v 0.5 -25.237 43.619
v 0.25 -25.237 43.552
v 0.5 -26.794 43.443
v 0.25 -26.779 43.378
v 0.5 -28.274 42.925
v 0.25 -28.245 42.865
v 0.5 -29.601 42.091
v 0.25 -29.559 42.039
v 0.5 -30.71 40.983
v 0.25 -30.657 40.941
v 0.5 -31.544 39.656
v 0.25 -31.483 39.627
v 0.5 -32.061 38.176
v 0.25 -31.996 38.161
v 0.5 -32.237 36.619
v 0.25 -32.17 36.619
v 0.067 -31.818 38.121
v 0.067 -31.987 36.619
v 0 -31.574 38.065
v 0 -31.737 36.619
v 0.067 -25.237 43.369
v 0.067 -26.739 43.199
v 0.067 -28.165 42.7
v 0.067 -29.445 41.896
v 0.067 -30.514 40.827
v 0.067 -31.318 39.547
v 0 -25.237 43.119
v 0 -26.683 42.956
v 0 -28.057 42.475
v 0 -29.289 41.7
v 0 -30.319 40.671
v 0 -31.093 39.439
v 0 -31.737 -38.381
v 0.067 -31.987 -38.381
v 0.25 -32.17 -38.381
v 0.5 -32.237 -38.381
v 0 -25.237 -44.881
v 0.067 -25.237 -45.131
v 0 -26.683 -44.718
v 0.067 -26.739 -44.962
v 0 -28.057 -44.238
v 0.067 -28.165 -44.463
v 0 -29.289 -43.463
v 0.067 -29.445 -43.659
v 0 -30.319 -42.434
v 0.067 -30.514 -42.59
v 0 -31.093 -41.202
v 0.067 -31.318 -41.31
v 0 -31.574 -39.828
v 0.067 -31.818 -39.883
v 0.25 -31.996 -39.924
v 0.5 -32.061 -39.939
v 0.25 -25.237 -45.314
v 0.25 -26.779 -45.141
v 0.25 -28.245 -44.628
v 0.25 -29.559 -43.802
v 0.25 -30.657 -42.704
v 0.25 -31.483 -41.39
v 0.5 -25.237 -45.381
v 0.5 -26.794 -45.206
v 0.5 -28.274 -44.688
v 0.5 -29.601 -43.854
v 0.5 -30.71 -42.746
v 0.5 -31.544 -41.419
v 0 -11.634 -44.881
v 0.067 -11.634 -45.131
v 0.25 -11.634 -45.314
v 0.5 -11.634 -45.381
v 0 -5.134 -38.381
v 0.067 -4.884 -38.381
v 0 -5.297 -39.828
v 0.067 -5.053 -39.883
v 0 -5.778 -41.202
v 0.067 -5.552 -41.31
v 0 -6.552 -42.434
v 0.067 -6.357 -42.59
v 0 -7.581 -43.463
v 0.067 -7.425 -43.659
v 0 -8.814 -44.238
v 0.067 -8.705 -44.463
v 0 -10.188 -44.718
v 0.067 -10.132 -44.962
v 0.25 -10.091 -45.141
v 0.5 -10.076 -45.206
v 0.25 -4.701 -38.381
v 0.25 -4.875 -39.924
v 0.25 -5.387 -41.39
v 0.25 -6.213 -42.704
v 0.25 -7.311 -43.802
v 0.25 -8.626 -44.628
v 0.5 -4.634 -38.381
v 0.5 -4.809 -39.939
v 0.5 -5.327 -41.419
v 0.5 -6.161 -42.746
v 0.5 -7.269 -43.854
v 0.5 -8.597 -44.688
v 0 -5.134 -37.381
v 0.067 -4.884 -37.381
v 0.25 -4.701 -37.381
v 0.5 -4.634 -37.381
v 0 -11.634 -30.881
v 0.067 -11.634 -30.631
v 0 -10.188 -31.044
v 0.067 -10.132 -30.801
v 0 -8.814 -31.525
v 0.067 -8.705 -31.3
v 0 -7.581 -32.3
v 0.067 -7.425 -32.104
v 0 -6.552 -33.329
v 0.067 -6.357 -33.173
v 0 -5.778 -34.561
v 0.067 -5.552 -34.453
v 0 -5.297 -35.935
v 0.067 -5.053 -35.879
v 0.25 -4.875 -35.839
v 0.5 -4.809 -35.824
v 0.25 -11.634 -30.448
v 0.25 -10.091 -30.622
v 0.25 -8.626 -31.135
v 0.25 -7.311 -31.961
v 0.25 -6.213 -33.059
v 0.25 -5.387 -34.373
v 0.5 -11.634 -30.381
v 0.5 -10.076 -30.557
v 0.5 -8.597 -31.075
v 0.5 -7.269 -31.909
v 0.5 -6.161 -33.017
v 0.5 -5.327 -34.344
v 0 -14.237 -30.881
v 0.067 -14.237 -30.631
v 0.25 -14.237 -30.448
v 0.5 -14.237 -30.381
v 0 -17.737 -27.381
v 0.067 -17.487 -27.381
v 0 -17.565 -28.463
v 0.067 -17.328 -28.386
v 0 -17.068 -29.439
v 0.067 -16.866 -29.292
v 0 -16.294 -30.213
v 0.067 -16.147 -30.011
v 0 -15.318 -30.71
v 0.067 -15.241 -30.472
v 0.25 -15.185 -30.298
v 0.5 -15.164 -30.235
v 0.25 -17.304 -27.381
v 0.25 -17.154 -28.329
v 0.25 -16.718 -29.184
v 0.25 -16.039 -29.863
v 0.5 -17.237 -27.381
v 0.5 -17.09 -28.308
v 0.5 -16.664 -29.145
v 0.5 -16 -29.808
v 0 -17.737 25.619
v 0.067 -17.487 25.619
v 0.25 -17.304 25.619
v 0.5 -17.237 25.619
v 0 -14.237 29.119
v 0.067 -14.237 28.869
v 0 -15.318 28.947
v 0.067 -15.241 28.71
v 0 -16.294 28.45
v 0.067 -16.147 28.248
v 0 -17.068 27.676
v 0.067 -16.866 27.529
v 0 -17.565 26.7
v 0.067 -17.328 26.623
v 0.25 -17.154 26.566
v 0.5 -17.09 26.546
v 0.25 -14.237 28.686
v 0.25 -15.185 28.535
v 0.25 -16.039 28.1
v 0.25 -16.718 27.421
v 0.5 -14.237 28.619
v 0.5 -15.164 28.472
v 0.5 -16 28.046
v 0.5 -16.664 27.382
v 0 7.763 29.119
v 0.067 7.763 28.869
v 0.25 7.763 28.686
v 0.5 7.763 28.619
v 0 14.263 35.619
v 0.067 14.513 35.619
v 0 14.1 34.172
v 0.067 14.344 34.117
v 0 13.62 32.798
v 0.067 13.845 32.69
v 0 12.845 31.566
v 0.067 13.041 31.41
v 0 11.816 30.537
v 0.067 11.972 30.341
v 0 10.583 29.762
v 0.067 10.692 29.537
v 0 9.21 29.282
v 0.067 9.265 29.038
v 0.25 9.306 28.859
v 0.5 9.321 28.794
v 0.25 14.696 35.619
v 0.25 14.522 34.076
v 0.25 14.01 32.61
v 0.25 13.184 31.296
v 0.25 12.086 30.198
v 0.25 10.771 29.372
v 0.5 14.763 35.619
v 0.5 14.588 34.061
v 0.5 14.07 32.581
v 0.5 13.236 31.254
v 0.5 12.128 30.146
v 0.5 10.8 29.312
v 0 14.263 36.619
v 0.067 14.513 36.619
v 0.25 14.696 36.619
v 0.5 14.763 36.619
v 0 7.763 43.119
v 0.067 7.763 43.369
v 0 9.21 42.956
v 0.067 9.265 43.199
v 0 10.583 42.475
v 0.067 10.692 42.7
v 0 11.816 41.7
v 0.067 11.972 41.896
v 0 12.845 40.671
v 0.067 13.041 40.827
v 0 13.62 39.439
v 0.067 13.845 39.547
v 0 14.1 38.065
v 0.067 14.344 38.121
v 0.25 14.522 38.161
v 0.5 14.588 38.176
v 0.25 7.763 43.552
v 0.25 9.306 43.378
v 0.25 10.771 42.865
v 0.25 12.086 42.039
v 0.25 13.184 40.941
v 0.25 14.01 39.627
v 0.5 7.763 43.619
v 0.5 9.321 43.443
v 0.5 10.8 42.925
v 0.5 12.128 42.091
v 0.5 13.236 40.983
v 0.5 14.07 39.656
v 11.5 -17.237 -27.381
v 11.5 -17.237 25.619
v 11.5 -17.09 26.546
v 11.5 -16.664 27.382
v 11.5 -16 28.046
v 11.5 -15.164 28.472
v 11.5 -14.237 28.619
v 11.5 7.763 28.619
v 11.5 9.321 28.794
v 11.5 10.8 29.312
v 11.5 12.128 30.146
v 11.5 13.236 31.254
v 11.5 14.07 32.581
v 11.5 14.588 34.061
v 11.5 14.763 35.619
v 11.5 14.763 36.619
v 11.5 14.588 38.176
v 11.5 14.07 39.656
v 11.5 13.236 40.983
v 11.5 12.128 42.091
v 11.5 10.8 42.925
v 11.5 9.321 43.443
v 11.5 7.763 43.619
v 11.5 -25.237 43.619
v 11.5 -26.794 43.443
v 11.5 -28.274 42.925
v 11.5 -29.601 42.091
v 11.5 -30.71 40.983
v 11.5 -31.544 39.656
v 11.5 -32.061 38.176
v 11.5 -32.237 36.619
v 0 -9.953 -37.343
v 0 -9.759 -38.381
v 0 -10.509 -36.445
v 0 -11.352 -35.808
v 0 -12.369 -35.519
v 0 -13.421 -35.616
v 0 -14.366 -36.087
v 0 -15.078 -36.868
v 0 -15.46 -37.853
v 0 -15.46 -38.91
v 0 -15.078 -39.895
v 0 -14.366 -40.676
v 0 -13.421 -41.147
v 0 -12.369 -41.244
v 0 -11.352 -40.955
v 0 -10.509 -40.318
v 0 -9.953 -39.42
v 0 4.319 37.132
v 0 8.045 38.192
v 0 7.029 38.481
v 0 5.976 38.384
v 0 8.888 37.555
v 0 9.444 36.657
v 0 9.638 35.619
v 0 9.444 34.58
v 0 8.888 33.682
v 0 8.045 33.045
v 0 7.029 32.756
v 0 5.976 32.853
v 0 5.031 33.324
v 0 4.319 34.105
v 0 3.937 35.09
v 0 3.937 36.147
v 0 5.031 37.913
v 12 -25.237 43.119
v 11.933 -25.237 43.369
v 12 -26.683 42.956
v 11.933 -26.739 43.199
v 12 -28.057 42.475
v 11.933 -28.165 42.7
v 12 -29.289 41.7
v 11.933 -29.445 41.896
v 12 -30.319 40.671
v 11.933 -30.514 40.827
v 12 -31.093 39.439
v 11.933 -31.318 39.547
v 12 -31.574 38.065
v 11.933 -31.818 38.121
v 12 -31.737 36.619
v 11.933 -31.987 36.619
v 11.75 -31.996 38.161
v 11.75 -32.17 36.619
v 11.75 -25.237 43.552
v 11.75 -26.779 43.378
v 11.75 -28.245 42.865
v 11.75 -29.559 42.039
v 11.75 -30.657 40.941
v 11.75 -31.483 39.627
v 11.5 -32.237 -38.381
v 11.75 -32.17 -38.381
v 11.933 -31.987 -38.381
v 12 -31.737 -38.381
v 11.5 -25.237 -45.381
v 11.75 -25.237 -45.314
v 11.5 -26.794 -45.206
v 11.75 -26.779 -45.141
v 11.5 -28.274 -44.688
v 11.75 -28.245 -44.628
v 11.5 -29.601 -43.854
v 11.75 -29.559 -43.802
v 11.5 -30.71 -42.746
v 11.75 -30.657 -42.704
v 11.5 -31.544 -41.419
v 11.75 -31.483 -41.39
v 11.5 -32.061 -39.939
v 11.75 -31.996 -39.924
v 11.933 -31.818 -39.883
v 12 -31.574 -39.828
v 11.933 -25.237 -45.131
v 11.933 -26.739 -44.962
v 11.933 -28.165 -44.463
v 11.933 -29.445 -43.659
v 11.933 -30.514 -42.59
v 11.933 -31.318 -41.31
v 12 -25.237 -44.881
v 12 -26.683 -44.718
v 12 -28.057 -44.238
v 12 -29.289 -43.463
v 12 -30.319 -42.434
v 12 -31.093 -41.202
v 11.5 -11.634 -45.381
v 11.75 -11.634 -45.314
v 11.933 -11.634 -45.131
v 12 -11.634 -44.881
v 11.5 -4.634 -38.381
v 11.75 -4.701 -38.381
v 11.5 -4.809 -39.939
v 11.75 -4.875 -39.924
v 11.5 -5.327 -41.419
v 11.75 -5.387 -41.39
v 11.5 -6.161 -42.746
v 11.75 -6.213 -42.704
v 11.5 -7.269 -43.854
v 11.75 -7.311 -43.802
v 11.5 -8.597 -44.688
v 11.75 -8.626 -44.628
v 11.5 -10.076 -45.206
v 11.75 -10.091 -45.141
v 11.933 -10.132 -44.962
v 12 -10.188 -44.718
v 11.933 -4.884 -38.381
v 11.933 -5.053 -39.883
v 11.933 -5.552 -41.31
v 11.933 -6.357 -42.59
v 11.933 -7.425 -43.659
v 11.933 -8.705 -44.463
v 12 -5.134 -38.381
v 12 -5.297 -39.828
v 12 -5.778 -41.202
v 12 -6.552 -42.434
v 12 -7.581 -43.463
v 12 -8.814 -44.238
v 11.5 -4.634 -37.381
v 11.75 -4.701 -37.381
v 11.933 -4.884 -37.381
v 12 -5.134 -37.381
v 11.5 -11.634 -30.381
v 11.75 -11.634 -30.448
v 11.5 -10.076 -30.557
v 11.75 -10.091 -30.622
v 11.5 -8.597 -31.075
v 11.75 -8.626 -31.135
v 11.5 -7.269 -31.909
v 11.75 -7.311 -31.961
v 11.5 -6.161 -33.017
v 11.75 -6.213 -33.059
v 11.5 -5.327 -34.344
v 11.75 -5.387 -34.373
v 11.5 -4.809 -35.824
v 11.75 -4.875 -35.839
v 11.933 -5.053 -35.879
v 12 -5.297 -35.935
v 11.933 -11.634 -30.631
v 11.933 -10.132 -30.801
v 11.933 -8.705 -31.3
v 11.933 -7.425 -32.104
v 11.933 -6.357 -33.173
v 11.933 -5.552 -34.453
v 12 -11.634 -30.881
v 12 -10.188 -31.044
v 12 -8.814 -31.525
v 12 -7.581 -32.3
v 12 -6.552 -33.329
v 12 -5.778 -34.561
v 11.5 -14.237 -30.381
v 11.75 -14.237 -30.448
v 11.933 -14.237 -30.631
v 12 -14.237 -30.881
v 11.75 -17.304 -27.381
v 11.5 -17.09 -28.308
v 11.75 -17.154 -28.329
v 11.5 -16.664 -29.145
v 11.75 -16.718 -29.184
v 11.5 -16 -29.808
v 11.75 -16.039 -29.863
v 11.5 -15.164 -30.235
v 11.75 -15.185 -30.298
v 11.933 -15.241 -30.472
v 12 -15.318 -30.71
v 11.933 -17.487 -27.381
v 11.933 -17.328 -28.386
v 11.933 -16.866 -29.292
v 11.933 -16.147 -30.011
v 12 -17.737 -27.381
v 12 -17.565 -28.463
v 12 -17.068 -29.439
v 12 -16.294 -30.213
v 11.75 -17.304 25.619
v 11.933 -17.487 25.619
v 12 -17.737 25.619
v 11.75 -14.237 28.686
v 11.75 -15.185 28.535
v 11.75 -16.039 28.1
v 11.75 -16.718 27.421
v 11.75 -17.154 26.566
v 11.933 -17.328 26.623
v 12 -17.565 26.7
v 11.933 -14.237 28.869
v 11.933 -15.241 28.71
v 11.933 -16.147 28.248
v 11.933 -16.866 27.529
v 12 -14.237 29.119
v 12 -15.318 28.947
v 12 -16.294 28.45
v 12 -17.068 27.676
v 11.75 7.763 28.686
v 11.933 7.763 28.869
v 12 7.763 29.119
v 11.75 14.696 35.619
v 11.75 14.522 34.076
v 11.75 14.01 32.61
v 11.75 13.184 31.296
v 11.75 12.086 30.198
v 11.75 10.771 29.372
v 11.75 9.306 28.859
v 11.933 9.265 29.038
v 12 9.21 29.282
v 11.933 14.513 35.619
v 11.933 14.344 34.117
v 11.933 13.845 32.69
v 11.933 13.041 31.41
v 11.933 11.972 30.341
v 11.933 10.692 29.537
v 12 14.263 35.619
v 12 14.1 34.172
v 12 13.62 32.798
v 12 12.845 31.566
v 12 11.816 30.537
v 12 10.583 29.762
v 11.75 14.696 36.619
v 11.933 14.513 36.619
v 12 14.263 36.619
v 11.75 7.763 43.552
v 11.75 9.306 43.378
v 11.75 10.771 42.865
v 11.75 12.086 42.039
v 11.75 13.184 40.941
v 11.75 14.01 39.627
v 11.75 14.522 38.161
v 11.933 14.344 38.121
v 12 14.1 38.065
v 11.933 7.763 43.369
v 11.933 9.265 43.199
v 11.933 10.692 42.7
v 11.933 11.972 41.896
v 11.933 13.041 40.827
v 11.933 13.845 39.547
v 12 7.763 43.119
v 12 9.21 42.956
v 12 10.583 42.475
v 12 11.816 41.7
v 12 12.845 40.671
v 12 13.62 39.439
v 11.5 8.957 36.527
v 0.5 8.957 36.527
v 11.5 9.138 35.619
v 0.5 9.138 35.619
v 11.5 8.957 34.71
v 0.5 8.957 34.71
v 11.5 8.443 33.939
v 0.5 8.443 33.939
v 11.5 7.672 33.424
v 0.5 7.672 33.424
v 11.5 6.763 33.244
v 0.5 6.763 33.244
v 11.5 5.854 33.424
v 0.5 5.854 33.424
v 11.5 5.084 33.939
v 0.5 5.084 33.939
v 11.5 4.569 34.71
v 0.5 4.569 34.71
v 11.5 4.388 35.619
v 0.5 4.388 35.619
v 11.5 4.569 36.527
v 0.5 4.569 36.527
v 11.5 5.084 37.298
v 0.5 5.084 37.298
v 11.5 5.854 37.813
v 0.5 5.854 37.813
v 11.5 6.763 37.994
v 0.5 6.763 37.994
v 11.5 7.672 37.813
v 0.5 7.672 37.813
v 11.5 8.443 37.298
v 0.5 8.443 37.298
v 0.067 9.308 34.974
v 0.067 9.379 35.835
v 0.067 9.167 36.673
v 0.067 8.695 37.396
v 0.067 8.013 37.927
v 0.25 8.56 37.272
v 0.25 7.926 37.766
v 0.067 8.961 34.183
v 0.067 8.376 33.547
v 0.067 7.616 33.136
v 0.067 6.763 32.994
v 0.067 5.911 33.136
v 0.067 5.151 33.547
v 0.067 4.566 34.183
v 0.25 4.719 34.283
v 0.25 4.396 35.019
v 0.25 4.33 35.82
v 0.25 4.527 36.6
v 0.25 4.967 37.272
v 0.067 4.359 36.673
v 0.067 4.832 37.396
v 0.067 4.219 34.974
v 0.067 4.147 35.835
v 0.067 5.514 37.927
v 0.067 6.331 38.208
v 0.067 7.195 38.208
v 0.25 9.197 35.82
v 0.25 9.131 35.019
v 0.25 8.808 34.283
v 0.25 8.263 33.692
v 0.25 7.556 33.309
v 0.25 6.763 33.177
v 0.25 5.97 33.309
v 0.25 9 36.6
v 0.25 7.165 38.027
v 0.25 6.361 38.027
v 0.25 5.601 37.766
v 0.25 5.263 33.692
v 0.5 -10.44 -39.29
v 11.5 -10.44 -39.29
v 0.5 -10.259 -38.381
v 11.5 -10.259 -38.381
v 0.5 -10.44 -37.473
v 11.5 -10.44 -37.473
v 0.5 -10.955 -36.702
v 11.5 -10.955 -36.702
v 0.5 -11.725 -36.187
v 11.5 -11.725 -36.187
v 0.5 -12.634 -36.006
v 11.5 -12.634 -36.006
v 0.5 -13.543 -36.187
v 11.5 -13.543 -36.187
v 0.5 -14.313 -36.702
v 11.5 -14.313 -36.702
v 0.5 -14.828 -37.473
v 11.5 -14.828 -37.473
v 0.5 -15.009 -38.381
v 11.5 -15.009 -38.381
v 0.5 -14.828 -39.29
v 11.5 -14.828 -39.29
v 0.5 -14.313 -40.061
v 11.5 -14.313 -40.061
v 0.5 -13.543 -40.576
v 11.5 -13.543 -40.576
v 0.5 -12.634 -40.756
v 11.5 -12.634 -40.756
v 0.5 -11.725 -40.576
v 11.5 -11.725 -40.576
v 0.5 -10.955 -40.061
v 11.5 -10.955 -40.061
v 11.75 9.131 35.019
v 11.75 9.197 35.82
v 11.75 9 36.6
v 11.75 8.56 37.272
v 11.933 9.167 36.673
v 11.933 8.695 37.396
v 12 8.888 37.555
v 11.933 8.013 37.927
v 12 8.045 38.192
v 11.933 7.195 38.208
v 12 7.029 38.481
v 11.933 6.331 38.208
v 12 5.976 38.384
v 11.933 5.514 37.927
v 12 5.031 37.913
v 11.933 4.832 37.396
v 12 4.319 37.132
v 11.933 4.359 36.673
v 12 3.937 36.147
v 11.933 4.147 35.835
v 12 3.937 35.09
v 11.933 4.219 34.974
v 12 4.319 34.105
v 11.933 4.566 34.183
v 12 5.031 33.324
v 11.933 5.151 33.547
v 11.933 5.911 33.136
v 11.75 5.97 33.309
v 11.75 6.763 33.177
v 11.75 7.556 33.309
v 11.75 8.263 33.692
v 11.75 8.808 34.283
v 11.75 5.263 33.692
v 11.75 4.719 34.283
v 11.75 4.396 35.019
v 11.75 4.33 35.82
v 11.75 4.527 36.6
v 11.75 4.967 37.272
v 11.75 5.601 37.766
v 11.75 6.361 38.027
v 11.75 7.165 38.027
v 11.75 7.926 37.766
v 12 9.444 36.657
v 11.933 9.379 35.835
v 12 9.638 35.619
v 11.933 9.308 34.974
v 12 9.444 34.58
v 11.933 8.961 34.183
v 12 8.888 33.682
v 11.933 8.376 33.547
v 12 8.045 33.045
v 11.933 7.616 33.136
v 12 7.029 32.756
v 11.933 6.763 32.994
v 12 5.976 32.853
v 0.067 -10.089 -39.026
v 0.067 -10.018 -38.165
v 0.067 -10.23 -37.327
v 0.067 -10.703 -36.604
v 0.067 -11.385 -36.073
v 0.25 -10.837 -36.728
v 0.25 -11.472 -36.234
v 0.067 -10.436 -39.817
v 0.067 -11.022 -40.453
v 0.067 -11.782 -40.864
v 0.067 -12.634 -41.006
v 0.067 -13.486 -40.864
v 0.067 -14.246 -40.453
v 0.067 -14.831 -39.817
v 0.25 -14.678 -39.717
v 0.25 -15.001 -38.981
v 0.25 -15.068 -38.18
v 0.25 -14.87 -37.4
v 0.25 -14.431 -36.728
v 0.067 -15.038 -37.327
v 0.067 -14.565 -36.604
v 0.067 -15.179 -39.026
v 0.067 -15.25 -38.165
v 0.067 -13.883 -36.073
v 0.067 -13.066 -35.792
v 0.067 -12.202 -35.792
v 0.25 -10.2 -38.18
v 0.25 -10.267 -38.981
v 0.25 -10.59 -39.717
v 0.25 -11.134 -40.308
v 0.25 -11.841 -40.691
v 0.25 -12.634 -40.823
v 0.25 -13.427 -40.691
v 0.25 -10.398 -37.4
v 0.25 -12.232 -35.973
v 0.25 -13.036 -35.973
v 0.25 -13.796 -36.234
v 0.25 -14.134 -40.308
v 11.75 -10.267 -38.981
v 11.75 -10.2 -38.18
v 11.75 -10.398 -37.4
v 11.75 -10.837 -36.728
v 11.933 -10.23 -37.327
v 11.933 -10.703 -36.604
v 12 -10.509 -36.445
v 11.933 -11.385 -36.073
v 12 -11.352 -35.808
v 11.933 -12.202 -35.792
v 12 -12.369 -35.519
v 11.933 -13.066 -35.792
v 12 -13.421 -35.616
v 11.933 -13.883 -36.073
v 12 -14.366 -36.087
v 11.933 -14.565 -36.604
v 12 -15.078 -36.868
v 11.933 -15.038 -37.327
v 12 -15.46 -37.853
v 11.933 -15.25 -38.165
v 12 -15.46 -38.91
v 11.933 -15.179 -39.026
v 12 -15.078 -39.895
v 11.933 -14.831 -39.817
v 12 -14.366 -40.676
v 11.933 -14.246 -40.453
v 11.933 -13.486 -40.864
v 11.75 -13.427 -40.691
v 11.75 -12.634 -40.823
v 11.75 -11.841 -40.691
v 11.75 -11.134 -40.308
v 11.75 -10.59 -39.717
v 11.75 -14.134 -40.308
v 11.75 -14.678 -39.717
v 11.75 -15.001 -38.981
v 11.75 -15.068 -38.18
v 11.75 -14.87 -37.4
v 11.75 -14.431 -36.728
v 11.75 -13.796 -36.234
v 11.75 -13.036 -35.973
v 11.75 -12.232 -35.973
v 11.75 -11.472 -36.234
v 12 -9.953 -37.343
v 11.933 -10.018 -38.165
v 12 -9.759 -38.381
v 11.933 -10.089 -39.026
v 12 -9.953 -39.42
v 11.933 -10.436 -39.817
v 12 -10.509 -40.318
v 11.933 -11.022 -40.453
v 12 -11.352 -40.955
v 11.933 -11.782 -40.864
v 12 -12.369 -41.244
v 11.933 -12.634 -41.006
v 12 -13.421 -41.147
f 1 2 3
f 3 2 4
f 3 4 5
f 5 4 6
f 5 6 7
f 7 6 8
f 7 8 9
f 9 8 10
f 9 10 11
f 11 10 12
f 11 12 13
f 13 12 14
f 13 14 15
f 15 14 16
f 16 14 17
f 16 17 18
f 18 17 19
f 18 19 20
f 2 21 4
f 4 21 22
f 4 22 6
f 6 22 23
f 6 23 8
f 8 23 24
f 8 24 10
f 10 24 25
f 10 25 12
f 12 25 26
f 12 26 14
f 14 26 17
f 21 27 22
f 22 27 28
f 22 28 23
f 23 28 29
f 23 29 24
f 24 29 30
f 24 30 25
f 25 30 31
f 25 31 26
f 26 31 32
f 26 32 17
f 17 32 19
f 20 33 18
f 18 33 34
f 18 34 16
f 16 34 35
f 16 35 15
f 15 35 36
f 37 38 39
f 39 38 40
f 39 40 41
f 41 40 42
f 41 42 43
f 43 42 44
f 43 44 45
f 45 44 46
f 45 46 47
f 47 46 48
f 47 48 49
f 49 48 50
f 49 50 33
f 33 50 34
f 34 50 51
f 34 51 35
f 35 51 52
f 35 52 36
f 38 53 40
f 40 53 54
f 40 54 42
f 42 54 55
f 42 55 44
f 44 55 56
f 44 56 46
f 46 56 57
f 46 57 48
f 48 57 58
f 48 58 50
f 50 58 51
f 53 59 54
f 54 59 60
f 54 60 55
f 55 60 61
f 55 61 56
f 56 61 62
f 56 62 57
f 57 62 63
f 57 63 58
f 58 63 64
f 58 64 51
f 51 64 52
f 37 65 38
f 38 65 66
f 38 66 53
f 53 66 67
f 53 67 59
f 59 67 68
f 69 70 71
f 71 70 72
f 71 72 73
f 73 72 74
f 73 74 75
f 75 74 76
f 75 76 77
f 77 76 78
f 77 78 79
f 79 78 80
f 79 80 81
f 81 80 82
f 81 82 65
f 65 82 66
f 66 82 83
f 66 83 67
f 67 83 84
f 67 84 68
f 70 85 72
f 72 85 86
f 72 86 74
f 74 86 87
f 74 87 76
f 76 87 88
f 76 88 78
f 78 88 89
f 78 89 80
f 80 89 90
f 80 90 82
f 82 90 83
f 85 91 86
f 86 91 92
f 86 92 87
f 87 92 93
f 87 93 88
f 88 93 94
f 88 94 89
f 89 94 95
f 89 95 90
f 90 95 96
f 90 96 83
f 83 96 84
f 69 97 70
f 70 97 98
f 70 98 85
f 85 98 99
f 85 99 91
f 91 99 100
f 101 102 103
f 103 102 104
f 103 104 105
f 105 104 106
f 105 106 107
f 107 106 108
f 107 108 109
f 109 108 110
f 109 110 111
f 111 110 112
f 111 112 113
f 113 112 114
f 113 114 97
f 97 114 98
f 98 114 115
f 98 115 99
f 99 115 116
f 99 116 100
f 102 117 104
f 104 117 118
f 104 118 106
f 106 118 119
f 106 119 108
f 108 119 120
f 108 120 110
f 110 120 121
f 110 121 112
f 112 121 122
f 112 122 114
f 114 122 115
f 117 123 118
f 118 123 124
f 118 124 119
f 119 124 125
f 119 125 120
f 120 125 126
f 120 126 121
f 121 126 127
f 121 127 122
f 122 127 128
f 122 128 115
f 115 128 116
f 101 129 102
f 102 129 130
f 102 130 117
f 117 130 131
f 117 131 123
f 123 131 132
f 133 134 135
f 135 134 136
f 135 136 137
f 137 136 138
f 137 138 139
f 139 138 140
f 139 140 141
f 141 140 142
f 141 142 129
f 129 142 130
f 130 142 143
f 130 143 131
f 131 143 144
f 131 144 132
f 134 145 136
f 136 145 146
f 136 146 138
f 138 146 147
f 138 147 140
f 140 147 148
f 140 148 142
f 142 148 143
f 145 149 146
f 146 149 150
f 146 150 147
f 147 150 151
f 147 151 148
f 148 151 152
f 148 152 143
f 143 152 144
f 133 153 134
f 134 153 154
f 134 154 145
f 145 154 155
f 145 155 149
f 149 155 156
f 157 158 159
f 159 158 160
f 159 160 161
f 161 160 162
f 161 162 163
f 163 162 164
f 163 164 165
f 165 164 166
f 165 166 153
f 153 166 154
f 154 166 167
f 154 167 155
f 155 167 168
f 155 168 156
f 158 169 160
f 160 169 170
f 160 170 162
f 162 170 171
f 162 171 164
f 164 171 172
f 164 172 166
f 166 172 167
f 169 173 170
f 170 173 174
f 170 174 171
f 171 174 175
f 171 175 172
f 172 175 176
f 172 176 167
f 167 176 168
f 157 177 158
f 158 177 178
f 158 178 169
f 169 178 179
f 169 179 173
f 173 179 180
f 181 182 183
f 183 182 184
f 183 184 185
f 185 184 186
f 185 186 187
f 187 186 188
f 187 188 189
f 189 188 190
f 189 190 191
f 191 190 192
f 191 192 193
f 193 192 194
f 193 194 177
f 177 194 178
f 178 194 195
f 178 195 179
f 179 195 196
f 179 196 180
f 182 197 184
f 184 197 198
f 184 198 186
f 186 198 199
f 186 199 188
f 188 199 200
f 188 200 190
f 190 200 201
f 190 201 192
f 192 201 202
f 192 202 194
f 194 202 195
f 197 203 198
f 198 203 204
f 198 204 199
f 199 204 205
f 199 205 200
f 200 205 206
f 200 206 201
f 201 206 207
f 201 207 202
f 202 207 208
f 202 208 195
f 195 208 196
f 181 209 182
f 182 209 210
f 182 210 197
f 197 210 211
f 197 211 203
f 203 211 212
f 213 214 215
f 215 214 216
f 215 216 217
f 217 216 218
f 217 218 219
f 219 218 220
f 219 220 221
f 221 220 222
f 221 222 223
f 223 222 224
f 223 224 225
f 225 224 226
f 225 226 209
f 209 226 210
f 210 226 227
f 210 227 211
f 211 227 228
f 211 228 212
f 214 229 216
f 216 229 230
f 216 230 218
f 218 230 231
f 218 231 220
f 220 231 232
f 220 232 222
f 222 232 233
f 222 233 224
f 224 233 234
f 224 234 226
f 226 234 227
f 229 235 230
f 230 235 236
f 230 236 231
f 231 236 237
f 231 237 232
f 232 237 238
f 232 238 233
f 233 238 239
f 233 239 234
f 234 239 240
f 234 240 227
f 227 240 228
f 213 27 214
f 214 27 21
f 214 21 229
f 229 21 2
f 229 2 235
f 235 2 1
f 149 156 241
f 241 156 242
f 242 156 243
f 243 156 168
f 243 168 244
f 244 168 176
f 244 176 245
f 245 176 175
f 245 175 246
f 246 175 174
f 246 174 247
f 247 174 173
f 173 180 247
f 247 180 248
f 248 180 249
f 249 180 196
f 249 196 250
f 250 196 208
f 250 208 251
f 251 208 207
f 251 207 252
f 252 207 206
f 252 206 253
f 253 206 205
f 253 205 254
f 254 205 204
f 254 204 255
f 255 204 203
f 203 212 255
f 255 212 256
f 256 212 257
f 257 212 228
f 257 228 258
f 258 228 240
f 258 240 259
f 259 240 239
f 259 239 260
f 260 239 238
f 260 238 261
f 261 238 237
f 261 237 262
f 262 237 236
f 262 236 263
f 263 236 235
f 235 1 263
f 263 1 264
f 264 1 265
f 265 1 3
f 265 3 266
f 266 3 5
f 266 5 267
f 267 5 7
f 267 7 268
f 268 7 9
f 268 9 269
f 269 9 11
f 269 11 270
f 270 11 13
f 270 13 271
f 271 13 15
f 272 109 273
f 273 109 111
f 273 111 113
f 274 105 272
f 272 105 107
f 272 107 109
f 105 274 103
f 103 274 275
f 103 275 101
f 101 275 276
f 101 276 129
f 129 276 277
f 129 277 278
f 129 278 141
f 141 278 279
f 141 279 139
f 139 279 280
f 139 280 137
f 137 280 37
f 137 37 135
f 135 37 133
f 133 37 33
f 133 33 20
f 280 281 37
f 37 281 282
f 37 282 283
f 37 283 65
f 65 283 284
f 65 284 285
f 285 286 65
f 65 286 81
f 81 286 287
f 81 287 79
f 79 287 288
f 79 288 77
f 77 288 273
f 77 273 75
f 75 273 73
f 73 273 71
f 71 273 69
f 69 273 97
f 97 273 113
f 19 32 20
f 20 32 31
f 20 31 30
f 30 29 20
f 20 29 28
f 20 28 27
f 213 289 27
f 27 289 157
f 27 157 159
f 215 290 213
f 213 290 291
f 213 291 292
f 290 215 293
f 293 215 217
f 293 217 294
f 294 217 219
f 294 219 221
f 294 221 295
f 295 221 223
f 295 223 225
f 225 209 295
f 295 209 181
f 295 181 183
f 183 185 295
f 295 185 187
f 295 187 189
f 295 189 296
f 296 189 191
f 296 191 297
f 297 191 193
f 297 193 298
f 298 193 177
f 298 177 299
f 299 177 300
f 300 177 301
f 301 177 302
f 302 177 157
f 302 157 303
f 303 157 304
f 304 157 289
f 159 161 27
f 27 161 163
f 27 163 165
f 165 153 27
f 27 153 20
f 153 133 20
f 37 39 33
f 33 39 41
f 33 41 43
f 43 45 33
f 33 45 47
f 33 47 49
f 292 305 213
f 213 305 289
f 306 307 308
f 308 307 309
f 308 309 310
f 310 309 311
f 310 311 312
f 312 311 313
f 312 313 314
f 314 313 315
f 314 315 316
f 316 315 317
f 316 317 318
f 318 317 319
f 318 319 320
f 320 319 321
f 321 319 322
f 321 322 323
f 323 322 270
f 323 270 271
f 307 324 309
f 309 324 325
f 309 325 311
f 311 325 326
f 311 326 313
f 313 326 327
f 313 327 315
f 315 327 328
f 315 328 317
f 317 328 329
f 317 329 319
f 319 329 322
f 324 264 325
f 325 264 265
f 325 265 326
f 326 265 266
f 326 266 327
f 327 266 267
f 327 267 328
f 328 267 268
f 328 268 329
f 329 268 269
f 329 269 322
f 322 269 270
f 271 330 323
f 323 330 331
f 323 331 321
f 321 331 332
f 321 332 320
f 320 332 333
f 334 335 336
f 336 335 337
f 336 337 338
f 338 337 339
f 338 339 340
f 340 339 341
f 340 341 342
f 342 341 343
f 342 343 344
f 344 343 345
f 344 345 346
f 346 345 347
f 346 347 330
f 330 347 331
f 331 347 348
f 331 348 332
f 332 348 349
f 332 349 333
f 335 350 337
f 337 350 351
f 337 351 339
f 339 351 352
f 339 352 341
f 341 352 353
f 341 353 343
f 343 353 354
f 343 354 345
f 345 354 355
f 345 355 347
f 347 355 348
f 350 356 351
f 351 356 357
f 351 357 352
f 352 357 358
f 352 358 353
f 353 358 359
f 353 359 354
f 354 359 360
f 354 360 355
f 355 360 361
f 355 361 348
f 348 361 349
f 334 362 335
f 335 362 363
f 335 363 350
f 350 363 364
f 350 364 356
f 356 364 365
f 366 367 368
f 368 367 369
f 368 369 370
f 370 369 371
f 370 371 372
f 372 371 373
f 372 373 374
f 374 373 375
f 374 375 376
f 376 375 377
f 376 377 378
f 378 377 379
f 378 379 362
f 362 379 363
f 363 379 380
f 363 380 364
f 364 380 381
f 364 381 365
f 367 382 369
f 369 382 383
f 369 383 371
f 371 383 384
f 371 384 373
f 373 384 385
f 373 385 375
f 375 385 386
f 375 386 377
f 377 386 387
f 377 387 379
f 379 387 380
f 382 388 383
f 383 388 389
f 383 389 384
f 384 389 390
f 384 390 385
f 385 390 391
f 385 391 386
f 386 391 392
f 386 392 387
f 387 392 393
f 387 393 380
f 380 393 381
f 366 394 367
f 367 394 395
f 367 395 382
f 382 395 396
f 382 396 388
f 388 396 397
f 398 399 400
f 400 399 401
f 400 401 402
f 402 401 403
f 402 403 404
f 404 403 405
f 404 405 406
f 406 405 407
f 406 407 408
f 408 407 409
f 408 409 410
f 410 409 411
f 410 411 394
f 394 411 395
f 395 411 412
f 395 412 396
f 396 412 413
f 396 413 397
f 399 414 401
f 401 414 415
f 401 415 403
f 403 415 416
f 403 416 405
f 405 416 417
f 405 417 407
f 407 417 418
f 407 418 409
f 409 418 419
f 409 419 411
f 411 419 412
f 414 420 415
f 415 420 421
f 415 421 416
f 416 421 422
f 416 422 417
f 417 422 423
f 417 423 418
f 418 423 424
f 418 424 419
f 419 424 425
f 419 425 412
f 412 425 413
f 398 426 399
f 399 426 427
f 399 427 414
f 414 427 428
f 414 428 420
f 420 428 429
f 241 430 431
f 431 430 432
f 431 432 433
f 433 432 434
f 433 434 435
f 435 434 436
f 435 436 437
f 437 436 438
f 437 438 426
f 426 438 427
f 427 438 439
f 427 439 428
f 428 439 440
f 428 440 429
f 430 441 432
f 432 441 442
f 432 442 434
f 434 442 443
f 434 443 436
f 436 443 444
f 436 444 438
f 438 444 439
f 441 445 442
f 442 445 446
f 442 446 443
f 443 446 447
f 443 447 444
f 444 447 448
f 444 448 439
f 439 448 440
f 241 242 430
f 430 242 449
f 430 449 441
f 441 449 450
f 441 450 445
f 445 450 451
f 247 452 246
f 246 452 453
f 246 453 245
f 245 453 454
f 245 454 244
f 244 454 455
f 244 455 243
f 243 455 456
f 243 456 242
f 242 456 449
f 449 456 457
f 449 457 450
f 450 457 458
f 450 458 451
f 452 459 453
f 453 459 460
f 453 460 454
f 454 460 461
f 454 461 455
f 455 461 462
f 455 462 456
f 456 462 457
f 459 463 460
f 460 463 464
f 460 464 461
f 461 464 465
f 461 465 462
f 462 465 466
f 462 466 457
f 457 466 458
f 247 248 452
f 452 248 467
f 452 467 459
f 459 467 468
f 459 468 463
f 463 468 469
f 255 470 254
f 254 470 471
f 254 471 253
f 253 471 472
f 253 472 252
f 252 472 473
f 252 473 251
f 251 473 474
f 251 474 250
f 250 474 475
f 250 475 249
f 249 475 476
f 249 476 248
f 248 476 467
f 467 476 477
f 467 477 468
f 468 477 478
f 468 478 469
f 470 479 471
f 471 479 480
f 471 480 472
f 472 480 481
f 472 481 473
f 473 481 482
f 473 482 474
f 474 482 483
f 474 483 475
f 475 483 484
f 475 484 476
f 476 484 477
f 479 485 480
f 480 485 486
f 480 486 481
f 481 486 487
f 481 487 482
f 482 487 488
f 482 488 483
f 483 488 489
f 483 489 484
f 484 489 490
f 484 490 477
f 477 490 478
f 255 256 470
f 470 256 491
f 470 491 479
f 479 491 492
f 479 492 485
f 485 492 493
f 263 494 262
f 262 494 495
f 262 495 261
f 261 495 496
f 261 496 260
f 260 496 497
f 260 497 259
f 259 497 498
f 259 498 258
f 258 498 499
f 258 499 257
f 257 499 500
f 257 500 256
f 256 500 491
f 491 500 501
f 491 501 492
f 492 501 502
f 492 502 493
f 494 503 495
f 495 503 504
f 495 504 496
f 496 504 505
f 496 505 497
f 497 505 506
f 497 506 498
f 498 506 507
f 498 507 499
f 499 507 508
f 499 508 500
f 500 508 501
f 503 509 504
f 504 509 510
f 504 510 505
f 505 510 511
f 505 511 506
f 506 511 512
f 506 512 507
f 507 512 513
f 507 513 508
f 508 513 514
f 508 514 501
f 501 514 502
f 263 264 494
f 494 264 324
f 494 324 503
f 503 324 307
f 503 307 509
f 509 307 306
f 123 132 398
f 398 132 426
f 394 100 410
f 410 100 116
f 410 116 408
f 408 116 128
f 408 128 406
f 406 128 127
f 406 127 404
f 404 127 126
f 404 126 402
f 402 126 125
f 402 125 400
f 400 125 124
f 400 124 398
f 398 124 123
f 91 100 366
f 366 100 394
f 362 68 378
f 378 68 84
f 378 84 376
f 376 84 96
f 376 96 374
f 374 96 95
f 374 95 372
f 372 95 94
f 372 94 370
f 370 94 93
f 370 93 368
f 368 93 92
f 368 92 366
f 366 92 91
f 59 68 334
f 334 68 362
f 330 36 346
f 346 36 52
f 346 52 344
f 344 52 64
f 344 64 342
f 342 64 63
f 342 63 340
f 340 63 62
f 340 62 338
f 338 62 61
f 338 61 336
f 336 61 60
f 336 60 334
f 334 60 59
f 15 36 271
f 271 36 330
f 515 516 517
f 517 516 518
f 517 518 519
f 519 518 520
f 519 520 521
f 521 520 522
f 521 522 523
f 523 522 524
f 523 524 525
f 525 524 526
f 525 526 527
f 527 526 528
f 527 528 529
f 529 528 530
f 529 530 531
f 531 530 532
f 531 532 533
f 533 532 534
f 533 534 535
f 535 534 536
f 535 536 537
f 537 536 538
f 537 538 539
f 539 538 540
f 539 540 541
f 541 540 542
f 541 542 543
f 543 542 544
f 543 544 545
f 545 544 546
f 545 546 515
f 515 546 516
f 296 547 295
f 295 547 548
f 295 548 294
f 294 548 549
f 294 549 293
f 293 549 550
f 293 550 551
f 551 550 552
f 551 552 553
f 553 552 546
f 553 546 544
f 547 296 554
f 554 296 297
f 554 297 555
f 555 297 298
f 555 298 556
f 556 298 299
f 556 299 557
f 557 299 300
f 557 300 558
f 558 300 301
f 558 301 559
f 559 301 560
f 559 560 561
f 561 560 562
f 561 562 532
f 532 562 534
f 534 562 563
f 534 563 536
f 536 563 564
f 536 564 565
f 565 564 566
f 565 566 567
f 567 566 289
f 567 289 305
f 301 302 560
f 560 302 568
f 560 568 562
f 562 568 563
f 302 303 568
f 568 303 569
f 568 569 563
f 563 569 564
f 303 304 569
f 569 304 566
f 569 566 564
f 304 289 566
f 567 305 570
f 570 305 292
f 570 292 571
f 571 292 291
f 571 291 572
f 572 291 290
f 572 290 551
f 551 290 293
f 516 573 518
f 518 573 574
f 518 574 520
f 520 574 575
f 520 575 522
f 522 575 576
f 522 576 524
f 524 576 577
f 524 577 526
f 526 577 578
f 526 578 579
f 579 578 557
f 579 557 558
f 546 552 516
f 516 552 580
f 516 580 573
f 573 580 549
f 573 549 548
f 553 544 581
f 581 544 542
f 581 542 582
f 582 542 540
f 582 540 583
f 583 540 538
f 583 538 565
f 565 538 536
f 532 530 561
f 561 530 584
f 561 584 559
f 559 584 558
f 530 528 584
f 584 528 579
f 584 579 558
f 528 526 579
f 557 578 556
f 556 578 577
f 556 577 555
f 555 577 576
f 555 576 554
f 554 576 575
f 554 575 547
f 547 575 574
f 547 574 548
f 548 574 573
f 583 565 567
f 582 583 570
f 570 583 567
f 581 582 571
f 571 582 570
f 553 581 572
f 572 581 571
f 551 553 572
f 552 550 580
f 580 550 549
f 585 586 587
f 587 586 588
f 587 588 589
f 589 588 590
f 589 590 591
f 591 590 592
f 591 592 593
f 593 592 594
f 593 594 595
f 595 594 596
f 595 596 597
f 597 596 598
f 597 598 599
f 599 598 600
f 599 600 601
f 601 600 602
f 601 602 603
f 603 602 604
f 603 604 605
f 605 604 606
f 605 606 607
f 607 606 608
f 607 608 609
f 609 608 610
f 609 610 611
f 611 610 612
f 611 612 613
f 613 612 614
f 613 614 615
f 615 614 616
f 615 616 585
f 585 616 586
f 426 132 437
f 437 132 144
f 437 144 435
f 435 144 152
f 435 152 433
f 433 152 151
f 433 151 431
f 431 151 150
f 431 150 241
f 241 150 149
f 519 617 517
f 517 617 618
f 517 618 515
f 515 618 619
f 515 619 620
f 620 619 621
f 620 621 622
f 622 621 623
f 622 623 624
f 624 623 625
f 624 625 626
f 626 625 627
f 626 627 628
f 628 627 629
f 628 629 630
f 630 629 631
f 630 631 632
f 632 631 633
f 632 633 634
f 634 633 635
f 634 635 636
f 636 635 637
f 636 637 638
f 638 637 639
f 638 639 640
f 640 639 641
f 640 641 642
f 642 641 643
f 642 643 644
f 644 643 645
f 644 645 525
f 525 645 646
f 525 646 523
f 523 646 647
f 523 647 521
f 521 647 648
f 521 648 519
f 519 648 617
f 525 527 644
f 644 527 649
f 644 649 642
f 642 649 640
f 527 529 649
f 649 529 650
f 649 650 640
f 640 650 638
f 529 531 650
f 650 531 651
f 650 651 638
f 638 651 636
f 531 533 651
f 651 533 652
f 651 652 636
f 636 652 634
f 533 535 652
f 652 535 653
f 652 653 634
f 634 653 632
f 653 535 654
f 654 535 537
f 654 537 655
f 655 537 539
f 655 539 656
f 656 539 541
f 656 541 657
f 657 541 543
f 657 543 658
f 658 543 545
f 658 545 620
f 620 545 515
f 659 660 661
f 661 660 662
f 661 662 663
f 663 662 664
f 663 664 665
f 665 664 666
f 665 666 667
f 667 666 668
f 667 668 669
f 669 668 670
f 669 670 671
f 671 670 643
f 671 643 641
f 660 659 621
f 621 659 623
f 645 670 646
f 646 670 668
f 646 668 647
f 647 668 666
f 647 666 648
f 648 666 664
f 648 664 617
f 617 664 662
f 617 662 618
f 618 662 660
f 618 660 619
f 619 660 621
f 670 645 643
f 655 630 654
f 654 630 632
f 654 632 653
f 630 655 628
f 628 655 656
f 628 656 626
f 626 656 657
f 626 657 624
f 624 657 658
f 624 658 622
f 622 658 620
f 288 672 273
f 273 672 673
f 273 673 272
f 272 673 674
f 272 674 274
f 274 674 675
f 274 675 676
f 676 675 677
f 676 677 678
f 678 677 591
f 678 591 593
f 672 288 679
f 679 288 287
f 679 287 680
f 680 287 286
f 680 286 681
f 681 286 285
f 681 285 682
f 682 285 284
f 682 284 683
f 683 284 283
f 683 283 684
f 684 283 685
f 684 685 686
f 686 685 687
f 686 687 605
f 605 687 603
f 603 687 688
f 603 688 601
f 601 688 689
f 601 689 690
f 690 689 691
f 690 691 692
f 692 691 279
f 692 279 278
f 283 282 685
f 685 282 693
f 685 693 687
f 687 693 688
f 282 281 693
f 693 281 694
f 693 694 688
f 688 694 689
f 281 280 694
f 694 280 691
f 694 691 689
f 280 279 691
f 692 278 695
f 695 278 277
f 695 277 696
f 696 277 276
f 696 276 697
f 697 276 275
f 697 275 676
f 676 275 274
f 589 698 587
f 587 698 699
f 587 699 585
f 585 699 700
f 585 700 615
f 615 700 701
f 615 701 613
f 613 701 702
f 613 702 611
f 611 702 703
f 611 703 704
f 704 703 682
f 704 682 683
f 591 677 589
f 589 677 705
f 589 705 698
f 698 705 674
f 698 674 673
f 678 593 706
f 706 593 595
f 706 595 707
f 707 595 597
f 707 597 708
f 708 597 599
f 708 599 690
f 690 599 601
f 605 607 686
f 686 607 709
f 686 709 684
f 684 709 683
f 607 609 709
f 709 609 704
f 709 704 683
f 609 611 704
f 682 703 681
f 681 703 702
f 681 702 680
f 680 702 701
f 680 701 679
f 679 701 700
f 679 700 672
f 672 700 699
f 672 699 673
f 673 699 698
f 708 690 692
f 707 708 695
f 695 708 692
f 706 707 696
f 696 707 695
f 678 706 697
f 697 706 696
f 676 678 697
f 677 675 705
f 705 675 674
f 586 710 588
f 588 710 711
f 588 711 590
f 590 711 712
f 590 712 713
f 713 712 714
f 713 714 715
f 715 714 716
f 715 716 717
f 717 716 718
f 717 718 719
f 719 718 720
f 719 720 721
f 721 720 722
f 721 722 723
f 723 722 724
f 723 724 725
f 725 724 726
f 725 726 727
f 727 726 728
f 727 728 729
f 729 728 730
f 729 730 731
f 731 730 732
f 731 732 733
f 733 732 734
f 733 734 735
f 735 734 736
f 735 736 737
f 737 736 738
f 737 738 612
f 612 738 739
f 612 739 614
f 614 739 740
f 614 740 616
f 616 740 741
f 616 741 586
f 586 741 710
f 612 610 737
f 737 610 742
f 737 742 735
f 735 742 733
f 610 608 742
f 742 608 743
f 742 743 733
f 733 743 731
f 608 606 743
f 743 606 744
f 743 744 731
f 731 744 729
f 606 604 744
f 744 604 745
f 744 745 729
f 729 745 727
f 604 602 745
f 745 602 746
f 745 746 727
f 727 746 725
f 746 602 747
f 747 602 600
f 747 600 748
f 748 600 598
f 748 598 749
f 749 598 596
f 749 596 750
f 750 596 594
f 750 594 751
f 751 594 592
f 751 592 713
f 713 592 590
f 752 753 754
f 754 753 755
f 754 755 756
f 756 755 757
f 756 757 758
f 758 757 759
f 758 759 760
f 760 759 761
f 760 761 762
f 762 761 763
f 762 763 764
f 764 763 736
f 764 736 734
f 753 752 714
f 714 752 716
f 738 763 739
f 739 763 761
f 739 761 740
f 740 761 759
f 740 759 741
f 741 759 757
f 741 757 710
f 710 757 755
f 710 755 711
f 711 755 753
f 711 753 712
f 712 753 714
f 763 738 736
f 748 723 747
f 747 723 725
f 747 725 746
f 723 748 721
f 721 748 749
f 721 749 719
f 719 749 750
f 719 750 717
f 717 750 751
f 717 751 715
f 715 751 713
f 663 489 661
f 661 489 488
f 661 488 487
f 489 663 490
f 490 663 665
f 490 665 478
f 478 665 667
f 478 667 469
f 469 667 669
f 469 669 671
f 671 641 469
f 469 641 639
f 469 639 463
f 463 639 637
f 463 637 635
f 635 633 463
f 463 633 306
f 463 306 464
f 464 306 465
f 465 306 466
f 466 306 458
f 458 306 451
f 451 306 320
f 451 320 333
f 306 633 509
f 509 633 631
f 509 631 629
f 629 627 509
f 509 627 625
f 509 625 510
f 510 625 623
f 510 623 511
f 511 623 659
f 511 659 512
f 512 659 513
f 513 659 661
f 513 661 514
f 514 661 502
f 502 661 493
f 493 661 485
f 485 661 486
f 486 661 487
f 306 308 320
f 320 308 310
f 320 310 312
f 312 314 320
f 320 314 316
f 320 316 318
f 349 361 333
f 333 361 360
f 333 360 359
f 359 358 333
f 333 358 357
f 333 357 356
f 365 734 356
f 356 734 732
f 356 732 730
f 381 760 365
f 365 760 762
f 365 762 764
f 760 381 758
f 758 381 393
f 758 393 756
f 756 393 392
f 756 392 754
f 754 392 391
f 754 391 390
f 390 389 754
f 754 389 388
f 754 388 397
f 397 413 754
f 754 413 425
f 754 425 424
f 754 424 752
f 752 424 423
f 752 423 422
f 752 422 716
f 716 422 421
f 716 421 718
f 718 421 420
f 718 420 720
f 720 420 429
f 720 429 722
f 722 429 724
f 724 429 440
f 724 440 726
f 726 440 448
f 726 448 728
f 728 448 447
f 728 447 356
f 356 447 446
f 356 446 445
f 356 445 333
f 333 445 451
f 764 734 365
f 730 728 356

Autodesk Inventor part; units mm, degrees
ref_plane "YZ Plane" through (0, 0, 0) normal (1, 0, 0) x (0, 1, 0)
ref_plane "XZ Plane" through (0, 0, 0) normal (0, 1, 0) x (-1, 0, 0)
ref_plane "XY Plane" through (0, 0, 0) normal (0, 0, 1) x (1, 0, 0)
sketch "Sketch1" plane through (0, 0, 0) normal (1, 0, 0) x (0, 1, 0)
  circle A0 centre (6.7632, 35.6186) radius 2.375
  circle A1 centre (-12.6339, -38.3814) radius 2.375
  line L0 (7.7632, 28.6186) -> (-14.2368, 28.6186)
  line L1 (-17.2368, 25.6186) -> (-17.2368, -27.3814)
  line L2 (-14.2368, -30.3814) -> (-11.6339, -30.3814)
  line L3 (-4.6339, -37.3814) -> (-4.6339, -38.3814)
  line L4 (-11.6339, -45.3814) -> (-25.2368, -45.3814)
  line L5 (-32.2368, -38.3814) -> (-32.2368, 36.6186)
  line L6 (-25.2368, 43.6186) -> (7.7632, 43.6186)
  line L7 (14.7632, 36.6186) -> (14.7632, 35.6186)
  arc A2 (-14.2368, 28.6186) -> (-17.2368, 25.6186) centre (-14.2368, 25.6186) ccw
  arc A3 (-17.2368, -27.3814) -> (-14.2368, -30.3814) centre (-14.2368, -27.3814) ccw
  arc A4 (14.7632, 36.6186) -> (7.7632, 43.6186) centre (7.7632, 36.6186) ccw
  arc A5 (7.7632, 28.6186) -> (14.7632, 35.6186) centre (7.7632, 35.6186) ccw
  arc A6 (-4.6339, -37.3814) -> (-11.6339, -30.3814) centre (-11.6339, -37.3814) ccw
  arc A7 (-11.6339, -45.3814) -> (-4.6339, -38.3814) centre (-11.6339, -38.3814) ccw
  arc A8 (-32.2368, -38.3814) -> (-25.2368, -45.3814) centre (-25.2368, -38.3814) ccw
  arc A9 (-25.2368, 43.6186) -> (-32.2368, 36.6186) centre (-25.2368, 36.6186) ccw
  point P0 (0, 0)
  point P1 (-4.6339, -37.8814)
  dimension "d0" = 76.5
  dimension "d1" = 4.75
  dimension "d2" = 4.75
  dimension "d3" = 59
  dimension "d4" = 7
  dimension "d5" = 8
  dimension "d6" = 15
  dimension "d7" = 15
  dimension "d9" = 8
  dimension "d10" = 8
  dimension "d11" = 24
  dimension "d12" = 15
  dimension "d13" = 3
  dimension "d14" = 7
extrude "Extrusion1" add sketch "Sketch1" along normal blind 12
fillet "Fillet1" radius 0.5 32 edges at (12, -30.1865, 41.5683) (12, -32.2368, -0.8814) (12, -30.1865, -43.3312) (12, -18.4353, -45.3814) (12, -6.6842, -43.3312) (12, -4.6339, -37.8814) (12, -6.6842, -32.4317) (12, -12.9353, -30.3814) (12, -16.3581, -29.5027) (12, -17.2368, -0.8814) (12, -16.3581, 27.7399) (12, -3.2368, 28.6186) (12, 12.713, 30.6688) (12, 14.7632, 36.1186) (12, 12.713, 41.5683) (12, -8.7368, 43.6186) (0, -30.1865, 41.5683) (0, -32.2368, -0.8814) (0, -30.1865, -43.3312) (0, -18.4353, -45.3814) (0, -6.6842, -43.3312) (0, -4.6339, -37.8814) (0, -6.6842, -32.4317) (0, -12.9353, -30.3814) (0, -16.3581, -29.5027) (0, -17.2368, -0.8814) (0, -16.3581, 27.7399) (0, -3.2368, 28.6186) (0, 12.713, 30.6688) (0, 14.7632, 36.1186) (0, 12.713, 41.5683) (0, -8.7368, 43.6186)
fillet "Fillet2" radius 0.5 4 edges at (12, 4.3882, 35.6186) (0, -15.0089, -38.3814) (12, -15.0089, -38.3814) (0, 4.3882, 35.6186)
properties part number "carb-holder"
